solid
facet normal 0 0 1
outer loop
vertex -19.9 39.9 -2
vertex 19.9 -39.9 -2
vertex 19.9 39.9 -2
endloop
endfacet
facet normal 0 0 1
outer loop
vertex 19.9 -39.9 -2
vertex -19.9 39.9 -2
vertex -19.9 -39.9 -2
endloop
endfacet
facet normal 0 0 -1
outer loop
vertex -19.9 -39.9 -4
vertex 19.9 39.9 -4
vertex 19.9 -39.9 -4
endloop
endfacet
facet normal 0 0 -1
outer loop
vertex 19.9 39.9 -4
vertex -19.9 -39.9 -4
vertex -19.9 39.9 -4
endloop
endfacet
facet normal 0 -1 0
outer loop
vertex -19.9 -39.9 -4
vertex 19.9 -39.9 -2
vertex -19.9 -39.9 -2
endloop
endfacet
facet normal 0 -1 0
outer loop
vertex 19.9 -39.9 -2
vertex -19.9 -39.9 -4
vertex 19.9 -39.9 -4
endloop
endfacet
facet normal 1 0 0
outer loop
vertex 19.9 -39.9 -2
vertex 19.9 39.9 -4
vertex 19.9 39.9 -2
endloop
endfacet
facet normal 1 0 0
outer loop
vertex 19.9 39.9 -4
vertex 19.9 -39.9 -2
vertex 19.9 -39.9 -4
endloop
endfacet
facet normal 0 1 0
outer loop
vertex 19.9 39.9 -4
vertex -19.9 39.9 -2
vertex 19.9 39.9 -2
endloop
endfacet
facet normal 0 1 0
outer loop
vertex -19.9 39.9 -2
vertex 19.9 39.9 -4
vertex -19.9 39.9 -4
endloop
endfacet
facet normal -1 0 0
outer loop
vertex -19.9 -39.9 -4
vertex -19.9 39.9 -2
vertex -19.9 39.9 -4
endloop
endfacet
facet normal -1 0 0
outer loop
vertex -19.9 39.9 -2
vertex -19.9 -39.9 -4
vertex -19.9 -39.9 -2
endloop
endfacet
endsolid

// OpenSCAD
/*
  
  ttt_base_2.scad

  (c) olikraus@gmail.com

  This work is licensed under the Creative Commons Attribution-NonCommercial-ShareAlike 4.0 International License. 
  To view a copy of this license, visit http://creativecommons.org/licenses/by-nc-sa/4.0/.

  straight one grid tile train tube track
  
*/
include <train_tube_track.scad>;

//straight_track_double_plug(grid, is_base = false);

base_grid(2*grid);
